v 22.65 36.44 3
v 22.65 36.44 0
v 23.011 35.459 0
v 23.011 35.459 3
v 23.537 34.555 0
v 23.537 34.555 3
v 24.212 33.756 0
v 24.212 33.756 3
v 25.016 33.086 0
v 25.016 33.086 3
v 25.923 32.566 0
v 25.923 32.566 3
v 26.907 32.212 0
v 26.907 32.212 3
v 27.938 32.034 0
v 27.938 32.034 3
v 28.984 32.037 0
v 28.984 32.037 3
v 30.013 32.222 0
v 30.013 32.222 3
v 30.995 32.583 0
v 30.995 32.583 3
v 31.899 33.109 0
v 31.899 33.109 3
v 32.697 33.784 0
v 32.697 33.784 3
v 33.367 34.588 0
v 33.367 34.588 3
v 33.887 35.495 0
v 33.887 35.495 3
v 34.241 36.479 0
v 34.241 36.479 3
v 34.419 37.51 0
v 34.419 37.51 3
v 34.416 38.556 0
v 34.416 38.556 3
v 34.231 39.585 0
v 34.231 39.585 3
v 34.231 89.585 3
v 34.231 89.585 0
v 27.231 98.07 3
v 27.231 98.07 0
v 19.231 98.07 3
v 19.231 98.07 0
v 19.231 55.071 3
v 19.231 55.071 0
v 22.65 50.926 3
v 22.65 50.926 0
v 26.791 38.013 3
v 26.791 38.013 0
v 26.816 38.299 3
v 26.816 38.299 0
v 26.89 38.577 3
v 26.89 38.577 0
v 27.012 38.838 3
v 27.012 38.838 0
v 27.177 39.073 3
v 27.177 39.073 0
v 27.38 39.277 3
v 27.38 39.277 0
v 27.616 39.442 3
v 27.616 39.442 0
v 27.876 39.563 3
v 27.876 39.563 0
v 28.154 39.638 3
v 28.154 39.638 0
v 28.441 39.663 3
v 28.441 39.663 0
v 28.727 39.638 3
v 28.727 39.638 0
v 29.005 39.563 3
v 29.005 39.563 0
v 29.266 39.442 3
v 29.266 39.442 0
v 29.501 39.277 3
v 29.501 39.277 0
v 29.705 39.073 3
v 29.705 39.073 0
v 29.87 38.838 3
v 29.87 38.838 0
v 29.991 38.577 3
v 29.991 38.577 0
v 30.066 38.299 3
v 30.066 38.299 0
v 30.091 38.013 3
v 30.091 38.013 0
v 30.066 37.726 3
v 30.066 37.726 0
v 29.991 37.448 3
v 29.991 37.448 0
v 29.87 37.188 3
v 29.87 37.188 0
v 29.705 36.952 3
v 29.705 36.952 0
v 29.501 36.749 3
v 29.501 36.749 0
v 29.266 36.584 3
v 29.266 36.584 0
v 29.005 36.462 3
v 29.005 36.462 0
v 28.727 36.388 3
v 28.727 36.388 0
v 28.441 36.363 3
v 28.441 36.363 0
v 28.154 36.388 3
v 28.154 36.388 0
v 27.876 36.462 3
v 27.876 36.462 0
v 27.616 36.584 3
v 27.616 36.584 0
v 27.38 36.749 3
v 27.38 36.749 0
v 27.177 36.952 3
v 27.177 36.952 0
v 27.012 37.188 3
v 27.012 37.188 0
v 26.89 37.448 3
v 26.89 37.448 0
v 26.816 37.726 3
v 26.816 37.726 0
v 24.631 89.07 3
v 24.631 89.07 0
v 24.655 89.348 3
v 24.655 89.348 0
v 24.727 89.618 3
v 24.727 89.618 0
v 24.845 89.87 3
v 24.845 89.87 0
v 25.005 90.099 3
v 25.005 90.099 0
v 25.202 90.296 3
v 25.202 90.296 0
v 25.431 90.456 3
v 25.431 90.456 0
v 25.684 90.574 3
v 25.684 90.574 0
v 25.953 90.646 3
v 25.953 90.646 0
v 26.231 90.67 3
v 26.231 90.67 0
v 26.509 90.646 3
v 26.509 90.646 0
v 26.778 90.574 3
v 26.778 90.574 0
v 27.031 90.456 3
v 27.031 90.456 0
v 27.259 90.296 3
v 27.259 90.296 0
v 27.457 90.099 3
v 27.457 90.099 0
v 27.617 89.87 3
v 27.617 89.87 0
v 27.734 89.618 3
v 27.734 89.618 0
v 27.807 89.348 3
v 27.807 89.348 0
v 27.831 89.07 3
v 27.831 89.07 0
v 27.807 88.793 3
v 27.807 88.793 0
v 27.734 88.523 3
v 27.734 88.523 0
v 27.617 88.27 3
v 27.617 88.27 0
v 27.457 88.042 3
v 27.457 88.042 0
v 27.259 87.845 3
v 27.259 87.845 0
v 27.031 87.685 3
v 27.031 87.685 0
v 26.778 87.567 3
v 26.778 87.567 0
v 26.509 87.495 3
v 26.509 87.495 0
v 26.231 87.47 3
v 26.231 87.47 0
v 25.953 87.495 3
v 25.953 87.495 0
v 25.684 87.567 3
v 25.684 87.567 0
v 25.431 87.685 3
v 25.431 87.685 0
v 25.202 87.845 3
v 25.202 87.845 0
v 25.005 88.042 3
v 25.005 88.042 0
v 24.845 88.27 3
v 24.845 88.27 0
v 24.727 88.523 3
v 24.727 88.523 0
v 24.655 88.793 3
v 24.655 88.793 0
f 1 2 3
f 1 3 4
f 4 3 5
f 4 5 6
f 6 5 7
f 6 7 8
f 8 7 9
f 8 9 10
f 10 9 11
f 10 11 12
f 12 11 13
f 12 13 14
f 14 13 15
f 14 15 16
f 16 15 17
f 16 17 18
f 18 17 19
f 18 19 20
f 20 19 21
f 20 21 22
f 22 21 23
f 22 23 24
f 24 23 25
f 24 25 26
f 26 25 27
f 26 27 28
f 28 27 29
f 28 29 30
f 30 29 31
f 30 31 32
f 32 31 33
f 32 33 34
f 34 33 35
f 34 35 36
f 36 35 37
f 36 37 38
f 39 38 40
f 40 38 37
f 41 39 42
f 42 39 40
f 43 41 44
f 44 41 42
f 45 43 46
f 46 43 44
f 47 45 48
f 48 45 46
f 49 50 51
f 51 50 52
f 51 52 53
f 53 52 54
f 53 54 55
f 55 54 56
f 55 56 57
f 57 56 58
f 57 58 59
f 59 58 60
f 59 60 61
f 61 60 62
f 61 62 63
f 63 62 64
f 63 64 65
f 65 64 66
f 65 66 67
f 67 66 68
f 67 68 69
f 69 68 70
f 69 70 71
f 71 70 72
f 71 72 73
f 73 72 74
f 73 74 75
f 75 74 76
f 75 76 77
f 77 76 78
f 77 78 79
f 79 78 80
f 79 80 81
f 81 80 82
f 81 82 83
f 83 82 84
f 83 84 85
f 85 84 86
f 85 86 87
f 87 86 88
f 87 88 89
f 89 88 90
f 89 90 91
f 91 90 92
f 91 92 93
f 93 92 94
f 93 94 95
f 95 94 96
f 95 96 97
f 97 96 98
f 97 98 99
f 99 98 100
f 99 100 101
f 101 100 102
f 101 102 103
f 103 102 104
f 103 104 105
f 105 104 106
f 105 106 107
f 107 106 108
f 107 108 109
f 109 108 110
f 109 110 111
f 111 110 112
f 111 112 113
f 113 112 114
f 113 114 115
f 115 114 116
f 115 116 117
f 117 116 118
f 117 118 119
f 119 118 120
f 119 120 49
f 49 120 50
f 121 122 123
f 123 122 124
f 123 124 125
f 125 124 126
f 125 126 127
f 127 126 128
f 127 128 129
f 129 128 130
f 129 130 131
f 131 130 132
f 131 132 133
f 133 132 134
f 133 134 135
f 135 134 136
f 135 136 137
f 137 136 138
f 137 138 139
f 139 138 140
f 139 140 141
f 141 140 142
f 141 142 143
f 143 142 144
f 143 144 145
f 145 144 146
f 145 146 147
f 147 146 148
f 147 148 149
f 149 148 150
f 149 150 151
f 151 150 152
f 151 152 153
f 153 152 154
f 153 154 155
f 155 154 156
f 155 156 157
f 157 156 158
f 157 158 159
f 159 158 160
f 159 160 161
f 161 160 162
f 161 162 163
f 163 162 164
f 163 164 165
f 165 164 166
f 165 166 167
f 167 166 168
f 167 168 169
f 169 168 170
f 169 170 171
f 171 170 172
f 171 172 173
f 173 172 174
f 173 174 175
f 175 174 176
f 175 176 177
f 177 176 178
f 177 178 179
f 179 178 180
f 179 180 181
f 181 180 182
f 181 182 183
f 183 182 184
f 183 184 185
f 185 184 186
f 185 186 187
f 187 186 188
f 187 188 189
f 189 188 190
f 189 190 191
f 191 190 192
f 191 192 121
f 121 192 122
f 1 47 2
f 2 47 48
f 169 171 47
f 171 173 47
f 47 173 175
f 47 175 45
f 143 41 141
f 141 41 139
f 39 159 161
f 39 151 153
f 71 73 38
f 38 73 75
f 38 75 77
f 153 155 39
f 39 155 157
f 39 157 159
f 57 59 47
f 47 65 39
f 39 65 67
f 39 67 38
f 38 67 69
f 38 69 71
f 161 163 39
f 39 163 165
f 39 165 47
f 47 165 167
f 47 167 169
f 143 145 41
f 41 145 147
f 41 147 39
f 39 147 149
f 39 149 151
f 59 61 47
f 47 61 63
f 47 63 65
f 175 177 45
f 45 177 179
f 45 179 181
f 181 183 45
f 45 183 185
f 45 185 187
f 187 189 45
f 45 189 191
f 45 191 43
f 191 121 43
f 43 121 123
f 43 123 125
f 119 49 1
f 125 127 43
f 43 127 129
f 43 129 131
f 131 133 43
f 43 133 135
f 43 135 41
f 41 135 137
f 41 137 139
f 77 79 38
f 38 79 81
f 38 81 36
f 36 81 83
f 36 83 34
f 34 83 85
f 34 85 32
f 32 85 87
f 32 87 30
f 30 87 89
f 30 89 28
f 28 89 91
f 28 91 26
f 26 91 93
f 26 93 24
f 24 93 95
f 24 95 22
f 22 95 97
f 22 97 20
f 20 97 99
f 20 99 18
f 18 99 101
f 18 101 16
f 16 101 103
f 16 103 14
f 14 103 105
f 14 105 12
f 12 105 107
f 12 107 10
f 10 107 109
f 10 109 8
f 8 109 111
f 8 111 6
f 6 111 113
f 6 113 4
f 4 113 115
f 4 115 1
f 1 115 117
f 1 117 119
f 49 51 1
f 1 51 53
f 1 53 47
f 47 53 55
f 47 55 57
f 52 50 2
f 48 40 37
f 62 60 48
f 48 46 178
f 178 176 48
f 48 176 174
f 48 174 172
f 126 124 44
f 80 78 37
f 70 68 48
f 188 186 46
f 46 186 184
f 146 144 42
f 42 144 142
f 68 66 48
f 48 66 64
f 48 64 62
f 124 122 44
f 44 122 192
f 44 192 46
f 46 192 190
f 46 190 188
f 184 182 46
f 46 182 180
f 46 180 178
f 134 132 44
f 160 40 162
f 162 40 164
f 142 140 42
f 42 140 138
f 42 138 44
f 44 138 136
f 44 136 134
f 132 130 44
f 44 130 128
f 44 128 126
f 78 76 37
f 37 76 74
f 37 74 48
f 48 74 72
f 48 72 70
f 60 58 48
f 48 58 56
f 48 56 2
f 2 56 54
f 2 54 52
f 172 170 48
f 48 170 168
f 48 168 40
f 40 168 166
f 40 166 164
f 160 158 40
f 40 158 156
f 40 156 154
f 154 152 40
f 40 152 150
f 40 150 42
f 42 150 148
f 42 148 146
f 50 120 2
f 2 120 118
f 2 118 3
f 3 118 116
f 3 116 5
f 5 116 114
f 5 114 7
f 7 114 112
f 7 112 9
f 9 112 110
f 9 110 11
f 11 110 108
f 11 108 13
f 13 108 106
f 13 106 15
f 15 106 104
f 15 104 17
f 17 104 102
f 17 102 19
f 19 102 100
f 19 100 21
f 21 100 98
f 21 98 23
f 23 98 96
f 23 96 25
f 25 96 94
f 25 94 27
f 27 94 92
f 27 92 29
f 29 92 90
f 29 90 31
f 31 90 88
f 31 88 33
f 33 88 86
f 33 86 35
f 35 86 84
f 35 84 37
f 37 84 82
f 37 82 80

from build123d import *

# Parameters (mm, degrees)
SKETCH1_R           = 1.65
SKETCH1_R_2         = 1.6
BOSS_EXTRUDE1_DEPTH = 3


with BuildPart() as part:
    # Sketch1 → Boss-Extrude1 (new body)
    with BuildSketch(Plane.XY):
        with BuildLine():
            Line((22.650283011, 50.925569007), (22.650283011, 36.440298517))
            ThreePointArc((22.650283011, 36.440298517), (30.012998862, 32.222429945), (34.230867434, 39.585145796))
            Line((34.230867434, 39.585145796), (34.230867434, 89.585145796))
            Line((34.230867434, 89.585145796), (27.230867434, 98.07042717))
            Line((27.230867434, 98.07042717), (19.230867434, 98.07042717))
            Line((19.230867434, 98.07042717), (19.230867434, 55.070526621))
            Line((19.230867434, 55.070526621), (22.650283011, 50.925569007))
        make_face()
        with Locations((28.440575223, 38.012722157)):
            Circle(SKETCH1_R, mode=Mode.SUBTRACT)
        with Locations((26.230867434, 89.07042717)):
            Circle(SKETCH1_R_2, mode=Mode.SUBTRACT)
    extrude(amount=BOSS_EXTRUDE1_DEPTH)


solid = part.part
